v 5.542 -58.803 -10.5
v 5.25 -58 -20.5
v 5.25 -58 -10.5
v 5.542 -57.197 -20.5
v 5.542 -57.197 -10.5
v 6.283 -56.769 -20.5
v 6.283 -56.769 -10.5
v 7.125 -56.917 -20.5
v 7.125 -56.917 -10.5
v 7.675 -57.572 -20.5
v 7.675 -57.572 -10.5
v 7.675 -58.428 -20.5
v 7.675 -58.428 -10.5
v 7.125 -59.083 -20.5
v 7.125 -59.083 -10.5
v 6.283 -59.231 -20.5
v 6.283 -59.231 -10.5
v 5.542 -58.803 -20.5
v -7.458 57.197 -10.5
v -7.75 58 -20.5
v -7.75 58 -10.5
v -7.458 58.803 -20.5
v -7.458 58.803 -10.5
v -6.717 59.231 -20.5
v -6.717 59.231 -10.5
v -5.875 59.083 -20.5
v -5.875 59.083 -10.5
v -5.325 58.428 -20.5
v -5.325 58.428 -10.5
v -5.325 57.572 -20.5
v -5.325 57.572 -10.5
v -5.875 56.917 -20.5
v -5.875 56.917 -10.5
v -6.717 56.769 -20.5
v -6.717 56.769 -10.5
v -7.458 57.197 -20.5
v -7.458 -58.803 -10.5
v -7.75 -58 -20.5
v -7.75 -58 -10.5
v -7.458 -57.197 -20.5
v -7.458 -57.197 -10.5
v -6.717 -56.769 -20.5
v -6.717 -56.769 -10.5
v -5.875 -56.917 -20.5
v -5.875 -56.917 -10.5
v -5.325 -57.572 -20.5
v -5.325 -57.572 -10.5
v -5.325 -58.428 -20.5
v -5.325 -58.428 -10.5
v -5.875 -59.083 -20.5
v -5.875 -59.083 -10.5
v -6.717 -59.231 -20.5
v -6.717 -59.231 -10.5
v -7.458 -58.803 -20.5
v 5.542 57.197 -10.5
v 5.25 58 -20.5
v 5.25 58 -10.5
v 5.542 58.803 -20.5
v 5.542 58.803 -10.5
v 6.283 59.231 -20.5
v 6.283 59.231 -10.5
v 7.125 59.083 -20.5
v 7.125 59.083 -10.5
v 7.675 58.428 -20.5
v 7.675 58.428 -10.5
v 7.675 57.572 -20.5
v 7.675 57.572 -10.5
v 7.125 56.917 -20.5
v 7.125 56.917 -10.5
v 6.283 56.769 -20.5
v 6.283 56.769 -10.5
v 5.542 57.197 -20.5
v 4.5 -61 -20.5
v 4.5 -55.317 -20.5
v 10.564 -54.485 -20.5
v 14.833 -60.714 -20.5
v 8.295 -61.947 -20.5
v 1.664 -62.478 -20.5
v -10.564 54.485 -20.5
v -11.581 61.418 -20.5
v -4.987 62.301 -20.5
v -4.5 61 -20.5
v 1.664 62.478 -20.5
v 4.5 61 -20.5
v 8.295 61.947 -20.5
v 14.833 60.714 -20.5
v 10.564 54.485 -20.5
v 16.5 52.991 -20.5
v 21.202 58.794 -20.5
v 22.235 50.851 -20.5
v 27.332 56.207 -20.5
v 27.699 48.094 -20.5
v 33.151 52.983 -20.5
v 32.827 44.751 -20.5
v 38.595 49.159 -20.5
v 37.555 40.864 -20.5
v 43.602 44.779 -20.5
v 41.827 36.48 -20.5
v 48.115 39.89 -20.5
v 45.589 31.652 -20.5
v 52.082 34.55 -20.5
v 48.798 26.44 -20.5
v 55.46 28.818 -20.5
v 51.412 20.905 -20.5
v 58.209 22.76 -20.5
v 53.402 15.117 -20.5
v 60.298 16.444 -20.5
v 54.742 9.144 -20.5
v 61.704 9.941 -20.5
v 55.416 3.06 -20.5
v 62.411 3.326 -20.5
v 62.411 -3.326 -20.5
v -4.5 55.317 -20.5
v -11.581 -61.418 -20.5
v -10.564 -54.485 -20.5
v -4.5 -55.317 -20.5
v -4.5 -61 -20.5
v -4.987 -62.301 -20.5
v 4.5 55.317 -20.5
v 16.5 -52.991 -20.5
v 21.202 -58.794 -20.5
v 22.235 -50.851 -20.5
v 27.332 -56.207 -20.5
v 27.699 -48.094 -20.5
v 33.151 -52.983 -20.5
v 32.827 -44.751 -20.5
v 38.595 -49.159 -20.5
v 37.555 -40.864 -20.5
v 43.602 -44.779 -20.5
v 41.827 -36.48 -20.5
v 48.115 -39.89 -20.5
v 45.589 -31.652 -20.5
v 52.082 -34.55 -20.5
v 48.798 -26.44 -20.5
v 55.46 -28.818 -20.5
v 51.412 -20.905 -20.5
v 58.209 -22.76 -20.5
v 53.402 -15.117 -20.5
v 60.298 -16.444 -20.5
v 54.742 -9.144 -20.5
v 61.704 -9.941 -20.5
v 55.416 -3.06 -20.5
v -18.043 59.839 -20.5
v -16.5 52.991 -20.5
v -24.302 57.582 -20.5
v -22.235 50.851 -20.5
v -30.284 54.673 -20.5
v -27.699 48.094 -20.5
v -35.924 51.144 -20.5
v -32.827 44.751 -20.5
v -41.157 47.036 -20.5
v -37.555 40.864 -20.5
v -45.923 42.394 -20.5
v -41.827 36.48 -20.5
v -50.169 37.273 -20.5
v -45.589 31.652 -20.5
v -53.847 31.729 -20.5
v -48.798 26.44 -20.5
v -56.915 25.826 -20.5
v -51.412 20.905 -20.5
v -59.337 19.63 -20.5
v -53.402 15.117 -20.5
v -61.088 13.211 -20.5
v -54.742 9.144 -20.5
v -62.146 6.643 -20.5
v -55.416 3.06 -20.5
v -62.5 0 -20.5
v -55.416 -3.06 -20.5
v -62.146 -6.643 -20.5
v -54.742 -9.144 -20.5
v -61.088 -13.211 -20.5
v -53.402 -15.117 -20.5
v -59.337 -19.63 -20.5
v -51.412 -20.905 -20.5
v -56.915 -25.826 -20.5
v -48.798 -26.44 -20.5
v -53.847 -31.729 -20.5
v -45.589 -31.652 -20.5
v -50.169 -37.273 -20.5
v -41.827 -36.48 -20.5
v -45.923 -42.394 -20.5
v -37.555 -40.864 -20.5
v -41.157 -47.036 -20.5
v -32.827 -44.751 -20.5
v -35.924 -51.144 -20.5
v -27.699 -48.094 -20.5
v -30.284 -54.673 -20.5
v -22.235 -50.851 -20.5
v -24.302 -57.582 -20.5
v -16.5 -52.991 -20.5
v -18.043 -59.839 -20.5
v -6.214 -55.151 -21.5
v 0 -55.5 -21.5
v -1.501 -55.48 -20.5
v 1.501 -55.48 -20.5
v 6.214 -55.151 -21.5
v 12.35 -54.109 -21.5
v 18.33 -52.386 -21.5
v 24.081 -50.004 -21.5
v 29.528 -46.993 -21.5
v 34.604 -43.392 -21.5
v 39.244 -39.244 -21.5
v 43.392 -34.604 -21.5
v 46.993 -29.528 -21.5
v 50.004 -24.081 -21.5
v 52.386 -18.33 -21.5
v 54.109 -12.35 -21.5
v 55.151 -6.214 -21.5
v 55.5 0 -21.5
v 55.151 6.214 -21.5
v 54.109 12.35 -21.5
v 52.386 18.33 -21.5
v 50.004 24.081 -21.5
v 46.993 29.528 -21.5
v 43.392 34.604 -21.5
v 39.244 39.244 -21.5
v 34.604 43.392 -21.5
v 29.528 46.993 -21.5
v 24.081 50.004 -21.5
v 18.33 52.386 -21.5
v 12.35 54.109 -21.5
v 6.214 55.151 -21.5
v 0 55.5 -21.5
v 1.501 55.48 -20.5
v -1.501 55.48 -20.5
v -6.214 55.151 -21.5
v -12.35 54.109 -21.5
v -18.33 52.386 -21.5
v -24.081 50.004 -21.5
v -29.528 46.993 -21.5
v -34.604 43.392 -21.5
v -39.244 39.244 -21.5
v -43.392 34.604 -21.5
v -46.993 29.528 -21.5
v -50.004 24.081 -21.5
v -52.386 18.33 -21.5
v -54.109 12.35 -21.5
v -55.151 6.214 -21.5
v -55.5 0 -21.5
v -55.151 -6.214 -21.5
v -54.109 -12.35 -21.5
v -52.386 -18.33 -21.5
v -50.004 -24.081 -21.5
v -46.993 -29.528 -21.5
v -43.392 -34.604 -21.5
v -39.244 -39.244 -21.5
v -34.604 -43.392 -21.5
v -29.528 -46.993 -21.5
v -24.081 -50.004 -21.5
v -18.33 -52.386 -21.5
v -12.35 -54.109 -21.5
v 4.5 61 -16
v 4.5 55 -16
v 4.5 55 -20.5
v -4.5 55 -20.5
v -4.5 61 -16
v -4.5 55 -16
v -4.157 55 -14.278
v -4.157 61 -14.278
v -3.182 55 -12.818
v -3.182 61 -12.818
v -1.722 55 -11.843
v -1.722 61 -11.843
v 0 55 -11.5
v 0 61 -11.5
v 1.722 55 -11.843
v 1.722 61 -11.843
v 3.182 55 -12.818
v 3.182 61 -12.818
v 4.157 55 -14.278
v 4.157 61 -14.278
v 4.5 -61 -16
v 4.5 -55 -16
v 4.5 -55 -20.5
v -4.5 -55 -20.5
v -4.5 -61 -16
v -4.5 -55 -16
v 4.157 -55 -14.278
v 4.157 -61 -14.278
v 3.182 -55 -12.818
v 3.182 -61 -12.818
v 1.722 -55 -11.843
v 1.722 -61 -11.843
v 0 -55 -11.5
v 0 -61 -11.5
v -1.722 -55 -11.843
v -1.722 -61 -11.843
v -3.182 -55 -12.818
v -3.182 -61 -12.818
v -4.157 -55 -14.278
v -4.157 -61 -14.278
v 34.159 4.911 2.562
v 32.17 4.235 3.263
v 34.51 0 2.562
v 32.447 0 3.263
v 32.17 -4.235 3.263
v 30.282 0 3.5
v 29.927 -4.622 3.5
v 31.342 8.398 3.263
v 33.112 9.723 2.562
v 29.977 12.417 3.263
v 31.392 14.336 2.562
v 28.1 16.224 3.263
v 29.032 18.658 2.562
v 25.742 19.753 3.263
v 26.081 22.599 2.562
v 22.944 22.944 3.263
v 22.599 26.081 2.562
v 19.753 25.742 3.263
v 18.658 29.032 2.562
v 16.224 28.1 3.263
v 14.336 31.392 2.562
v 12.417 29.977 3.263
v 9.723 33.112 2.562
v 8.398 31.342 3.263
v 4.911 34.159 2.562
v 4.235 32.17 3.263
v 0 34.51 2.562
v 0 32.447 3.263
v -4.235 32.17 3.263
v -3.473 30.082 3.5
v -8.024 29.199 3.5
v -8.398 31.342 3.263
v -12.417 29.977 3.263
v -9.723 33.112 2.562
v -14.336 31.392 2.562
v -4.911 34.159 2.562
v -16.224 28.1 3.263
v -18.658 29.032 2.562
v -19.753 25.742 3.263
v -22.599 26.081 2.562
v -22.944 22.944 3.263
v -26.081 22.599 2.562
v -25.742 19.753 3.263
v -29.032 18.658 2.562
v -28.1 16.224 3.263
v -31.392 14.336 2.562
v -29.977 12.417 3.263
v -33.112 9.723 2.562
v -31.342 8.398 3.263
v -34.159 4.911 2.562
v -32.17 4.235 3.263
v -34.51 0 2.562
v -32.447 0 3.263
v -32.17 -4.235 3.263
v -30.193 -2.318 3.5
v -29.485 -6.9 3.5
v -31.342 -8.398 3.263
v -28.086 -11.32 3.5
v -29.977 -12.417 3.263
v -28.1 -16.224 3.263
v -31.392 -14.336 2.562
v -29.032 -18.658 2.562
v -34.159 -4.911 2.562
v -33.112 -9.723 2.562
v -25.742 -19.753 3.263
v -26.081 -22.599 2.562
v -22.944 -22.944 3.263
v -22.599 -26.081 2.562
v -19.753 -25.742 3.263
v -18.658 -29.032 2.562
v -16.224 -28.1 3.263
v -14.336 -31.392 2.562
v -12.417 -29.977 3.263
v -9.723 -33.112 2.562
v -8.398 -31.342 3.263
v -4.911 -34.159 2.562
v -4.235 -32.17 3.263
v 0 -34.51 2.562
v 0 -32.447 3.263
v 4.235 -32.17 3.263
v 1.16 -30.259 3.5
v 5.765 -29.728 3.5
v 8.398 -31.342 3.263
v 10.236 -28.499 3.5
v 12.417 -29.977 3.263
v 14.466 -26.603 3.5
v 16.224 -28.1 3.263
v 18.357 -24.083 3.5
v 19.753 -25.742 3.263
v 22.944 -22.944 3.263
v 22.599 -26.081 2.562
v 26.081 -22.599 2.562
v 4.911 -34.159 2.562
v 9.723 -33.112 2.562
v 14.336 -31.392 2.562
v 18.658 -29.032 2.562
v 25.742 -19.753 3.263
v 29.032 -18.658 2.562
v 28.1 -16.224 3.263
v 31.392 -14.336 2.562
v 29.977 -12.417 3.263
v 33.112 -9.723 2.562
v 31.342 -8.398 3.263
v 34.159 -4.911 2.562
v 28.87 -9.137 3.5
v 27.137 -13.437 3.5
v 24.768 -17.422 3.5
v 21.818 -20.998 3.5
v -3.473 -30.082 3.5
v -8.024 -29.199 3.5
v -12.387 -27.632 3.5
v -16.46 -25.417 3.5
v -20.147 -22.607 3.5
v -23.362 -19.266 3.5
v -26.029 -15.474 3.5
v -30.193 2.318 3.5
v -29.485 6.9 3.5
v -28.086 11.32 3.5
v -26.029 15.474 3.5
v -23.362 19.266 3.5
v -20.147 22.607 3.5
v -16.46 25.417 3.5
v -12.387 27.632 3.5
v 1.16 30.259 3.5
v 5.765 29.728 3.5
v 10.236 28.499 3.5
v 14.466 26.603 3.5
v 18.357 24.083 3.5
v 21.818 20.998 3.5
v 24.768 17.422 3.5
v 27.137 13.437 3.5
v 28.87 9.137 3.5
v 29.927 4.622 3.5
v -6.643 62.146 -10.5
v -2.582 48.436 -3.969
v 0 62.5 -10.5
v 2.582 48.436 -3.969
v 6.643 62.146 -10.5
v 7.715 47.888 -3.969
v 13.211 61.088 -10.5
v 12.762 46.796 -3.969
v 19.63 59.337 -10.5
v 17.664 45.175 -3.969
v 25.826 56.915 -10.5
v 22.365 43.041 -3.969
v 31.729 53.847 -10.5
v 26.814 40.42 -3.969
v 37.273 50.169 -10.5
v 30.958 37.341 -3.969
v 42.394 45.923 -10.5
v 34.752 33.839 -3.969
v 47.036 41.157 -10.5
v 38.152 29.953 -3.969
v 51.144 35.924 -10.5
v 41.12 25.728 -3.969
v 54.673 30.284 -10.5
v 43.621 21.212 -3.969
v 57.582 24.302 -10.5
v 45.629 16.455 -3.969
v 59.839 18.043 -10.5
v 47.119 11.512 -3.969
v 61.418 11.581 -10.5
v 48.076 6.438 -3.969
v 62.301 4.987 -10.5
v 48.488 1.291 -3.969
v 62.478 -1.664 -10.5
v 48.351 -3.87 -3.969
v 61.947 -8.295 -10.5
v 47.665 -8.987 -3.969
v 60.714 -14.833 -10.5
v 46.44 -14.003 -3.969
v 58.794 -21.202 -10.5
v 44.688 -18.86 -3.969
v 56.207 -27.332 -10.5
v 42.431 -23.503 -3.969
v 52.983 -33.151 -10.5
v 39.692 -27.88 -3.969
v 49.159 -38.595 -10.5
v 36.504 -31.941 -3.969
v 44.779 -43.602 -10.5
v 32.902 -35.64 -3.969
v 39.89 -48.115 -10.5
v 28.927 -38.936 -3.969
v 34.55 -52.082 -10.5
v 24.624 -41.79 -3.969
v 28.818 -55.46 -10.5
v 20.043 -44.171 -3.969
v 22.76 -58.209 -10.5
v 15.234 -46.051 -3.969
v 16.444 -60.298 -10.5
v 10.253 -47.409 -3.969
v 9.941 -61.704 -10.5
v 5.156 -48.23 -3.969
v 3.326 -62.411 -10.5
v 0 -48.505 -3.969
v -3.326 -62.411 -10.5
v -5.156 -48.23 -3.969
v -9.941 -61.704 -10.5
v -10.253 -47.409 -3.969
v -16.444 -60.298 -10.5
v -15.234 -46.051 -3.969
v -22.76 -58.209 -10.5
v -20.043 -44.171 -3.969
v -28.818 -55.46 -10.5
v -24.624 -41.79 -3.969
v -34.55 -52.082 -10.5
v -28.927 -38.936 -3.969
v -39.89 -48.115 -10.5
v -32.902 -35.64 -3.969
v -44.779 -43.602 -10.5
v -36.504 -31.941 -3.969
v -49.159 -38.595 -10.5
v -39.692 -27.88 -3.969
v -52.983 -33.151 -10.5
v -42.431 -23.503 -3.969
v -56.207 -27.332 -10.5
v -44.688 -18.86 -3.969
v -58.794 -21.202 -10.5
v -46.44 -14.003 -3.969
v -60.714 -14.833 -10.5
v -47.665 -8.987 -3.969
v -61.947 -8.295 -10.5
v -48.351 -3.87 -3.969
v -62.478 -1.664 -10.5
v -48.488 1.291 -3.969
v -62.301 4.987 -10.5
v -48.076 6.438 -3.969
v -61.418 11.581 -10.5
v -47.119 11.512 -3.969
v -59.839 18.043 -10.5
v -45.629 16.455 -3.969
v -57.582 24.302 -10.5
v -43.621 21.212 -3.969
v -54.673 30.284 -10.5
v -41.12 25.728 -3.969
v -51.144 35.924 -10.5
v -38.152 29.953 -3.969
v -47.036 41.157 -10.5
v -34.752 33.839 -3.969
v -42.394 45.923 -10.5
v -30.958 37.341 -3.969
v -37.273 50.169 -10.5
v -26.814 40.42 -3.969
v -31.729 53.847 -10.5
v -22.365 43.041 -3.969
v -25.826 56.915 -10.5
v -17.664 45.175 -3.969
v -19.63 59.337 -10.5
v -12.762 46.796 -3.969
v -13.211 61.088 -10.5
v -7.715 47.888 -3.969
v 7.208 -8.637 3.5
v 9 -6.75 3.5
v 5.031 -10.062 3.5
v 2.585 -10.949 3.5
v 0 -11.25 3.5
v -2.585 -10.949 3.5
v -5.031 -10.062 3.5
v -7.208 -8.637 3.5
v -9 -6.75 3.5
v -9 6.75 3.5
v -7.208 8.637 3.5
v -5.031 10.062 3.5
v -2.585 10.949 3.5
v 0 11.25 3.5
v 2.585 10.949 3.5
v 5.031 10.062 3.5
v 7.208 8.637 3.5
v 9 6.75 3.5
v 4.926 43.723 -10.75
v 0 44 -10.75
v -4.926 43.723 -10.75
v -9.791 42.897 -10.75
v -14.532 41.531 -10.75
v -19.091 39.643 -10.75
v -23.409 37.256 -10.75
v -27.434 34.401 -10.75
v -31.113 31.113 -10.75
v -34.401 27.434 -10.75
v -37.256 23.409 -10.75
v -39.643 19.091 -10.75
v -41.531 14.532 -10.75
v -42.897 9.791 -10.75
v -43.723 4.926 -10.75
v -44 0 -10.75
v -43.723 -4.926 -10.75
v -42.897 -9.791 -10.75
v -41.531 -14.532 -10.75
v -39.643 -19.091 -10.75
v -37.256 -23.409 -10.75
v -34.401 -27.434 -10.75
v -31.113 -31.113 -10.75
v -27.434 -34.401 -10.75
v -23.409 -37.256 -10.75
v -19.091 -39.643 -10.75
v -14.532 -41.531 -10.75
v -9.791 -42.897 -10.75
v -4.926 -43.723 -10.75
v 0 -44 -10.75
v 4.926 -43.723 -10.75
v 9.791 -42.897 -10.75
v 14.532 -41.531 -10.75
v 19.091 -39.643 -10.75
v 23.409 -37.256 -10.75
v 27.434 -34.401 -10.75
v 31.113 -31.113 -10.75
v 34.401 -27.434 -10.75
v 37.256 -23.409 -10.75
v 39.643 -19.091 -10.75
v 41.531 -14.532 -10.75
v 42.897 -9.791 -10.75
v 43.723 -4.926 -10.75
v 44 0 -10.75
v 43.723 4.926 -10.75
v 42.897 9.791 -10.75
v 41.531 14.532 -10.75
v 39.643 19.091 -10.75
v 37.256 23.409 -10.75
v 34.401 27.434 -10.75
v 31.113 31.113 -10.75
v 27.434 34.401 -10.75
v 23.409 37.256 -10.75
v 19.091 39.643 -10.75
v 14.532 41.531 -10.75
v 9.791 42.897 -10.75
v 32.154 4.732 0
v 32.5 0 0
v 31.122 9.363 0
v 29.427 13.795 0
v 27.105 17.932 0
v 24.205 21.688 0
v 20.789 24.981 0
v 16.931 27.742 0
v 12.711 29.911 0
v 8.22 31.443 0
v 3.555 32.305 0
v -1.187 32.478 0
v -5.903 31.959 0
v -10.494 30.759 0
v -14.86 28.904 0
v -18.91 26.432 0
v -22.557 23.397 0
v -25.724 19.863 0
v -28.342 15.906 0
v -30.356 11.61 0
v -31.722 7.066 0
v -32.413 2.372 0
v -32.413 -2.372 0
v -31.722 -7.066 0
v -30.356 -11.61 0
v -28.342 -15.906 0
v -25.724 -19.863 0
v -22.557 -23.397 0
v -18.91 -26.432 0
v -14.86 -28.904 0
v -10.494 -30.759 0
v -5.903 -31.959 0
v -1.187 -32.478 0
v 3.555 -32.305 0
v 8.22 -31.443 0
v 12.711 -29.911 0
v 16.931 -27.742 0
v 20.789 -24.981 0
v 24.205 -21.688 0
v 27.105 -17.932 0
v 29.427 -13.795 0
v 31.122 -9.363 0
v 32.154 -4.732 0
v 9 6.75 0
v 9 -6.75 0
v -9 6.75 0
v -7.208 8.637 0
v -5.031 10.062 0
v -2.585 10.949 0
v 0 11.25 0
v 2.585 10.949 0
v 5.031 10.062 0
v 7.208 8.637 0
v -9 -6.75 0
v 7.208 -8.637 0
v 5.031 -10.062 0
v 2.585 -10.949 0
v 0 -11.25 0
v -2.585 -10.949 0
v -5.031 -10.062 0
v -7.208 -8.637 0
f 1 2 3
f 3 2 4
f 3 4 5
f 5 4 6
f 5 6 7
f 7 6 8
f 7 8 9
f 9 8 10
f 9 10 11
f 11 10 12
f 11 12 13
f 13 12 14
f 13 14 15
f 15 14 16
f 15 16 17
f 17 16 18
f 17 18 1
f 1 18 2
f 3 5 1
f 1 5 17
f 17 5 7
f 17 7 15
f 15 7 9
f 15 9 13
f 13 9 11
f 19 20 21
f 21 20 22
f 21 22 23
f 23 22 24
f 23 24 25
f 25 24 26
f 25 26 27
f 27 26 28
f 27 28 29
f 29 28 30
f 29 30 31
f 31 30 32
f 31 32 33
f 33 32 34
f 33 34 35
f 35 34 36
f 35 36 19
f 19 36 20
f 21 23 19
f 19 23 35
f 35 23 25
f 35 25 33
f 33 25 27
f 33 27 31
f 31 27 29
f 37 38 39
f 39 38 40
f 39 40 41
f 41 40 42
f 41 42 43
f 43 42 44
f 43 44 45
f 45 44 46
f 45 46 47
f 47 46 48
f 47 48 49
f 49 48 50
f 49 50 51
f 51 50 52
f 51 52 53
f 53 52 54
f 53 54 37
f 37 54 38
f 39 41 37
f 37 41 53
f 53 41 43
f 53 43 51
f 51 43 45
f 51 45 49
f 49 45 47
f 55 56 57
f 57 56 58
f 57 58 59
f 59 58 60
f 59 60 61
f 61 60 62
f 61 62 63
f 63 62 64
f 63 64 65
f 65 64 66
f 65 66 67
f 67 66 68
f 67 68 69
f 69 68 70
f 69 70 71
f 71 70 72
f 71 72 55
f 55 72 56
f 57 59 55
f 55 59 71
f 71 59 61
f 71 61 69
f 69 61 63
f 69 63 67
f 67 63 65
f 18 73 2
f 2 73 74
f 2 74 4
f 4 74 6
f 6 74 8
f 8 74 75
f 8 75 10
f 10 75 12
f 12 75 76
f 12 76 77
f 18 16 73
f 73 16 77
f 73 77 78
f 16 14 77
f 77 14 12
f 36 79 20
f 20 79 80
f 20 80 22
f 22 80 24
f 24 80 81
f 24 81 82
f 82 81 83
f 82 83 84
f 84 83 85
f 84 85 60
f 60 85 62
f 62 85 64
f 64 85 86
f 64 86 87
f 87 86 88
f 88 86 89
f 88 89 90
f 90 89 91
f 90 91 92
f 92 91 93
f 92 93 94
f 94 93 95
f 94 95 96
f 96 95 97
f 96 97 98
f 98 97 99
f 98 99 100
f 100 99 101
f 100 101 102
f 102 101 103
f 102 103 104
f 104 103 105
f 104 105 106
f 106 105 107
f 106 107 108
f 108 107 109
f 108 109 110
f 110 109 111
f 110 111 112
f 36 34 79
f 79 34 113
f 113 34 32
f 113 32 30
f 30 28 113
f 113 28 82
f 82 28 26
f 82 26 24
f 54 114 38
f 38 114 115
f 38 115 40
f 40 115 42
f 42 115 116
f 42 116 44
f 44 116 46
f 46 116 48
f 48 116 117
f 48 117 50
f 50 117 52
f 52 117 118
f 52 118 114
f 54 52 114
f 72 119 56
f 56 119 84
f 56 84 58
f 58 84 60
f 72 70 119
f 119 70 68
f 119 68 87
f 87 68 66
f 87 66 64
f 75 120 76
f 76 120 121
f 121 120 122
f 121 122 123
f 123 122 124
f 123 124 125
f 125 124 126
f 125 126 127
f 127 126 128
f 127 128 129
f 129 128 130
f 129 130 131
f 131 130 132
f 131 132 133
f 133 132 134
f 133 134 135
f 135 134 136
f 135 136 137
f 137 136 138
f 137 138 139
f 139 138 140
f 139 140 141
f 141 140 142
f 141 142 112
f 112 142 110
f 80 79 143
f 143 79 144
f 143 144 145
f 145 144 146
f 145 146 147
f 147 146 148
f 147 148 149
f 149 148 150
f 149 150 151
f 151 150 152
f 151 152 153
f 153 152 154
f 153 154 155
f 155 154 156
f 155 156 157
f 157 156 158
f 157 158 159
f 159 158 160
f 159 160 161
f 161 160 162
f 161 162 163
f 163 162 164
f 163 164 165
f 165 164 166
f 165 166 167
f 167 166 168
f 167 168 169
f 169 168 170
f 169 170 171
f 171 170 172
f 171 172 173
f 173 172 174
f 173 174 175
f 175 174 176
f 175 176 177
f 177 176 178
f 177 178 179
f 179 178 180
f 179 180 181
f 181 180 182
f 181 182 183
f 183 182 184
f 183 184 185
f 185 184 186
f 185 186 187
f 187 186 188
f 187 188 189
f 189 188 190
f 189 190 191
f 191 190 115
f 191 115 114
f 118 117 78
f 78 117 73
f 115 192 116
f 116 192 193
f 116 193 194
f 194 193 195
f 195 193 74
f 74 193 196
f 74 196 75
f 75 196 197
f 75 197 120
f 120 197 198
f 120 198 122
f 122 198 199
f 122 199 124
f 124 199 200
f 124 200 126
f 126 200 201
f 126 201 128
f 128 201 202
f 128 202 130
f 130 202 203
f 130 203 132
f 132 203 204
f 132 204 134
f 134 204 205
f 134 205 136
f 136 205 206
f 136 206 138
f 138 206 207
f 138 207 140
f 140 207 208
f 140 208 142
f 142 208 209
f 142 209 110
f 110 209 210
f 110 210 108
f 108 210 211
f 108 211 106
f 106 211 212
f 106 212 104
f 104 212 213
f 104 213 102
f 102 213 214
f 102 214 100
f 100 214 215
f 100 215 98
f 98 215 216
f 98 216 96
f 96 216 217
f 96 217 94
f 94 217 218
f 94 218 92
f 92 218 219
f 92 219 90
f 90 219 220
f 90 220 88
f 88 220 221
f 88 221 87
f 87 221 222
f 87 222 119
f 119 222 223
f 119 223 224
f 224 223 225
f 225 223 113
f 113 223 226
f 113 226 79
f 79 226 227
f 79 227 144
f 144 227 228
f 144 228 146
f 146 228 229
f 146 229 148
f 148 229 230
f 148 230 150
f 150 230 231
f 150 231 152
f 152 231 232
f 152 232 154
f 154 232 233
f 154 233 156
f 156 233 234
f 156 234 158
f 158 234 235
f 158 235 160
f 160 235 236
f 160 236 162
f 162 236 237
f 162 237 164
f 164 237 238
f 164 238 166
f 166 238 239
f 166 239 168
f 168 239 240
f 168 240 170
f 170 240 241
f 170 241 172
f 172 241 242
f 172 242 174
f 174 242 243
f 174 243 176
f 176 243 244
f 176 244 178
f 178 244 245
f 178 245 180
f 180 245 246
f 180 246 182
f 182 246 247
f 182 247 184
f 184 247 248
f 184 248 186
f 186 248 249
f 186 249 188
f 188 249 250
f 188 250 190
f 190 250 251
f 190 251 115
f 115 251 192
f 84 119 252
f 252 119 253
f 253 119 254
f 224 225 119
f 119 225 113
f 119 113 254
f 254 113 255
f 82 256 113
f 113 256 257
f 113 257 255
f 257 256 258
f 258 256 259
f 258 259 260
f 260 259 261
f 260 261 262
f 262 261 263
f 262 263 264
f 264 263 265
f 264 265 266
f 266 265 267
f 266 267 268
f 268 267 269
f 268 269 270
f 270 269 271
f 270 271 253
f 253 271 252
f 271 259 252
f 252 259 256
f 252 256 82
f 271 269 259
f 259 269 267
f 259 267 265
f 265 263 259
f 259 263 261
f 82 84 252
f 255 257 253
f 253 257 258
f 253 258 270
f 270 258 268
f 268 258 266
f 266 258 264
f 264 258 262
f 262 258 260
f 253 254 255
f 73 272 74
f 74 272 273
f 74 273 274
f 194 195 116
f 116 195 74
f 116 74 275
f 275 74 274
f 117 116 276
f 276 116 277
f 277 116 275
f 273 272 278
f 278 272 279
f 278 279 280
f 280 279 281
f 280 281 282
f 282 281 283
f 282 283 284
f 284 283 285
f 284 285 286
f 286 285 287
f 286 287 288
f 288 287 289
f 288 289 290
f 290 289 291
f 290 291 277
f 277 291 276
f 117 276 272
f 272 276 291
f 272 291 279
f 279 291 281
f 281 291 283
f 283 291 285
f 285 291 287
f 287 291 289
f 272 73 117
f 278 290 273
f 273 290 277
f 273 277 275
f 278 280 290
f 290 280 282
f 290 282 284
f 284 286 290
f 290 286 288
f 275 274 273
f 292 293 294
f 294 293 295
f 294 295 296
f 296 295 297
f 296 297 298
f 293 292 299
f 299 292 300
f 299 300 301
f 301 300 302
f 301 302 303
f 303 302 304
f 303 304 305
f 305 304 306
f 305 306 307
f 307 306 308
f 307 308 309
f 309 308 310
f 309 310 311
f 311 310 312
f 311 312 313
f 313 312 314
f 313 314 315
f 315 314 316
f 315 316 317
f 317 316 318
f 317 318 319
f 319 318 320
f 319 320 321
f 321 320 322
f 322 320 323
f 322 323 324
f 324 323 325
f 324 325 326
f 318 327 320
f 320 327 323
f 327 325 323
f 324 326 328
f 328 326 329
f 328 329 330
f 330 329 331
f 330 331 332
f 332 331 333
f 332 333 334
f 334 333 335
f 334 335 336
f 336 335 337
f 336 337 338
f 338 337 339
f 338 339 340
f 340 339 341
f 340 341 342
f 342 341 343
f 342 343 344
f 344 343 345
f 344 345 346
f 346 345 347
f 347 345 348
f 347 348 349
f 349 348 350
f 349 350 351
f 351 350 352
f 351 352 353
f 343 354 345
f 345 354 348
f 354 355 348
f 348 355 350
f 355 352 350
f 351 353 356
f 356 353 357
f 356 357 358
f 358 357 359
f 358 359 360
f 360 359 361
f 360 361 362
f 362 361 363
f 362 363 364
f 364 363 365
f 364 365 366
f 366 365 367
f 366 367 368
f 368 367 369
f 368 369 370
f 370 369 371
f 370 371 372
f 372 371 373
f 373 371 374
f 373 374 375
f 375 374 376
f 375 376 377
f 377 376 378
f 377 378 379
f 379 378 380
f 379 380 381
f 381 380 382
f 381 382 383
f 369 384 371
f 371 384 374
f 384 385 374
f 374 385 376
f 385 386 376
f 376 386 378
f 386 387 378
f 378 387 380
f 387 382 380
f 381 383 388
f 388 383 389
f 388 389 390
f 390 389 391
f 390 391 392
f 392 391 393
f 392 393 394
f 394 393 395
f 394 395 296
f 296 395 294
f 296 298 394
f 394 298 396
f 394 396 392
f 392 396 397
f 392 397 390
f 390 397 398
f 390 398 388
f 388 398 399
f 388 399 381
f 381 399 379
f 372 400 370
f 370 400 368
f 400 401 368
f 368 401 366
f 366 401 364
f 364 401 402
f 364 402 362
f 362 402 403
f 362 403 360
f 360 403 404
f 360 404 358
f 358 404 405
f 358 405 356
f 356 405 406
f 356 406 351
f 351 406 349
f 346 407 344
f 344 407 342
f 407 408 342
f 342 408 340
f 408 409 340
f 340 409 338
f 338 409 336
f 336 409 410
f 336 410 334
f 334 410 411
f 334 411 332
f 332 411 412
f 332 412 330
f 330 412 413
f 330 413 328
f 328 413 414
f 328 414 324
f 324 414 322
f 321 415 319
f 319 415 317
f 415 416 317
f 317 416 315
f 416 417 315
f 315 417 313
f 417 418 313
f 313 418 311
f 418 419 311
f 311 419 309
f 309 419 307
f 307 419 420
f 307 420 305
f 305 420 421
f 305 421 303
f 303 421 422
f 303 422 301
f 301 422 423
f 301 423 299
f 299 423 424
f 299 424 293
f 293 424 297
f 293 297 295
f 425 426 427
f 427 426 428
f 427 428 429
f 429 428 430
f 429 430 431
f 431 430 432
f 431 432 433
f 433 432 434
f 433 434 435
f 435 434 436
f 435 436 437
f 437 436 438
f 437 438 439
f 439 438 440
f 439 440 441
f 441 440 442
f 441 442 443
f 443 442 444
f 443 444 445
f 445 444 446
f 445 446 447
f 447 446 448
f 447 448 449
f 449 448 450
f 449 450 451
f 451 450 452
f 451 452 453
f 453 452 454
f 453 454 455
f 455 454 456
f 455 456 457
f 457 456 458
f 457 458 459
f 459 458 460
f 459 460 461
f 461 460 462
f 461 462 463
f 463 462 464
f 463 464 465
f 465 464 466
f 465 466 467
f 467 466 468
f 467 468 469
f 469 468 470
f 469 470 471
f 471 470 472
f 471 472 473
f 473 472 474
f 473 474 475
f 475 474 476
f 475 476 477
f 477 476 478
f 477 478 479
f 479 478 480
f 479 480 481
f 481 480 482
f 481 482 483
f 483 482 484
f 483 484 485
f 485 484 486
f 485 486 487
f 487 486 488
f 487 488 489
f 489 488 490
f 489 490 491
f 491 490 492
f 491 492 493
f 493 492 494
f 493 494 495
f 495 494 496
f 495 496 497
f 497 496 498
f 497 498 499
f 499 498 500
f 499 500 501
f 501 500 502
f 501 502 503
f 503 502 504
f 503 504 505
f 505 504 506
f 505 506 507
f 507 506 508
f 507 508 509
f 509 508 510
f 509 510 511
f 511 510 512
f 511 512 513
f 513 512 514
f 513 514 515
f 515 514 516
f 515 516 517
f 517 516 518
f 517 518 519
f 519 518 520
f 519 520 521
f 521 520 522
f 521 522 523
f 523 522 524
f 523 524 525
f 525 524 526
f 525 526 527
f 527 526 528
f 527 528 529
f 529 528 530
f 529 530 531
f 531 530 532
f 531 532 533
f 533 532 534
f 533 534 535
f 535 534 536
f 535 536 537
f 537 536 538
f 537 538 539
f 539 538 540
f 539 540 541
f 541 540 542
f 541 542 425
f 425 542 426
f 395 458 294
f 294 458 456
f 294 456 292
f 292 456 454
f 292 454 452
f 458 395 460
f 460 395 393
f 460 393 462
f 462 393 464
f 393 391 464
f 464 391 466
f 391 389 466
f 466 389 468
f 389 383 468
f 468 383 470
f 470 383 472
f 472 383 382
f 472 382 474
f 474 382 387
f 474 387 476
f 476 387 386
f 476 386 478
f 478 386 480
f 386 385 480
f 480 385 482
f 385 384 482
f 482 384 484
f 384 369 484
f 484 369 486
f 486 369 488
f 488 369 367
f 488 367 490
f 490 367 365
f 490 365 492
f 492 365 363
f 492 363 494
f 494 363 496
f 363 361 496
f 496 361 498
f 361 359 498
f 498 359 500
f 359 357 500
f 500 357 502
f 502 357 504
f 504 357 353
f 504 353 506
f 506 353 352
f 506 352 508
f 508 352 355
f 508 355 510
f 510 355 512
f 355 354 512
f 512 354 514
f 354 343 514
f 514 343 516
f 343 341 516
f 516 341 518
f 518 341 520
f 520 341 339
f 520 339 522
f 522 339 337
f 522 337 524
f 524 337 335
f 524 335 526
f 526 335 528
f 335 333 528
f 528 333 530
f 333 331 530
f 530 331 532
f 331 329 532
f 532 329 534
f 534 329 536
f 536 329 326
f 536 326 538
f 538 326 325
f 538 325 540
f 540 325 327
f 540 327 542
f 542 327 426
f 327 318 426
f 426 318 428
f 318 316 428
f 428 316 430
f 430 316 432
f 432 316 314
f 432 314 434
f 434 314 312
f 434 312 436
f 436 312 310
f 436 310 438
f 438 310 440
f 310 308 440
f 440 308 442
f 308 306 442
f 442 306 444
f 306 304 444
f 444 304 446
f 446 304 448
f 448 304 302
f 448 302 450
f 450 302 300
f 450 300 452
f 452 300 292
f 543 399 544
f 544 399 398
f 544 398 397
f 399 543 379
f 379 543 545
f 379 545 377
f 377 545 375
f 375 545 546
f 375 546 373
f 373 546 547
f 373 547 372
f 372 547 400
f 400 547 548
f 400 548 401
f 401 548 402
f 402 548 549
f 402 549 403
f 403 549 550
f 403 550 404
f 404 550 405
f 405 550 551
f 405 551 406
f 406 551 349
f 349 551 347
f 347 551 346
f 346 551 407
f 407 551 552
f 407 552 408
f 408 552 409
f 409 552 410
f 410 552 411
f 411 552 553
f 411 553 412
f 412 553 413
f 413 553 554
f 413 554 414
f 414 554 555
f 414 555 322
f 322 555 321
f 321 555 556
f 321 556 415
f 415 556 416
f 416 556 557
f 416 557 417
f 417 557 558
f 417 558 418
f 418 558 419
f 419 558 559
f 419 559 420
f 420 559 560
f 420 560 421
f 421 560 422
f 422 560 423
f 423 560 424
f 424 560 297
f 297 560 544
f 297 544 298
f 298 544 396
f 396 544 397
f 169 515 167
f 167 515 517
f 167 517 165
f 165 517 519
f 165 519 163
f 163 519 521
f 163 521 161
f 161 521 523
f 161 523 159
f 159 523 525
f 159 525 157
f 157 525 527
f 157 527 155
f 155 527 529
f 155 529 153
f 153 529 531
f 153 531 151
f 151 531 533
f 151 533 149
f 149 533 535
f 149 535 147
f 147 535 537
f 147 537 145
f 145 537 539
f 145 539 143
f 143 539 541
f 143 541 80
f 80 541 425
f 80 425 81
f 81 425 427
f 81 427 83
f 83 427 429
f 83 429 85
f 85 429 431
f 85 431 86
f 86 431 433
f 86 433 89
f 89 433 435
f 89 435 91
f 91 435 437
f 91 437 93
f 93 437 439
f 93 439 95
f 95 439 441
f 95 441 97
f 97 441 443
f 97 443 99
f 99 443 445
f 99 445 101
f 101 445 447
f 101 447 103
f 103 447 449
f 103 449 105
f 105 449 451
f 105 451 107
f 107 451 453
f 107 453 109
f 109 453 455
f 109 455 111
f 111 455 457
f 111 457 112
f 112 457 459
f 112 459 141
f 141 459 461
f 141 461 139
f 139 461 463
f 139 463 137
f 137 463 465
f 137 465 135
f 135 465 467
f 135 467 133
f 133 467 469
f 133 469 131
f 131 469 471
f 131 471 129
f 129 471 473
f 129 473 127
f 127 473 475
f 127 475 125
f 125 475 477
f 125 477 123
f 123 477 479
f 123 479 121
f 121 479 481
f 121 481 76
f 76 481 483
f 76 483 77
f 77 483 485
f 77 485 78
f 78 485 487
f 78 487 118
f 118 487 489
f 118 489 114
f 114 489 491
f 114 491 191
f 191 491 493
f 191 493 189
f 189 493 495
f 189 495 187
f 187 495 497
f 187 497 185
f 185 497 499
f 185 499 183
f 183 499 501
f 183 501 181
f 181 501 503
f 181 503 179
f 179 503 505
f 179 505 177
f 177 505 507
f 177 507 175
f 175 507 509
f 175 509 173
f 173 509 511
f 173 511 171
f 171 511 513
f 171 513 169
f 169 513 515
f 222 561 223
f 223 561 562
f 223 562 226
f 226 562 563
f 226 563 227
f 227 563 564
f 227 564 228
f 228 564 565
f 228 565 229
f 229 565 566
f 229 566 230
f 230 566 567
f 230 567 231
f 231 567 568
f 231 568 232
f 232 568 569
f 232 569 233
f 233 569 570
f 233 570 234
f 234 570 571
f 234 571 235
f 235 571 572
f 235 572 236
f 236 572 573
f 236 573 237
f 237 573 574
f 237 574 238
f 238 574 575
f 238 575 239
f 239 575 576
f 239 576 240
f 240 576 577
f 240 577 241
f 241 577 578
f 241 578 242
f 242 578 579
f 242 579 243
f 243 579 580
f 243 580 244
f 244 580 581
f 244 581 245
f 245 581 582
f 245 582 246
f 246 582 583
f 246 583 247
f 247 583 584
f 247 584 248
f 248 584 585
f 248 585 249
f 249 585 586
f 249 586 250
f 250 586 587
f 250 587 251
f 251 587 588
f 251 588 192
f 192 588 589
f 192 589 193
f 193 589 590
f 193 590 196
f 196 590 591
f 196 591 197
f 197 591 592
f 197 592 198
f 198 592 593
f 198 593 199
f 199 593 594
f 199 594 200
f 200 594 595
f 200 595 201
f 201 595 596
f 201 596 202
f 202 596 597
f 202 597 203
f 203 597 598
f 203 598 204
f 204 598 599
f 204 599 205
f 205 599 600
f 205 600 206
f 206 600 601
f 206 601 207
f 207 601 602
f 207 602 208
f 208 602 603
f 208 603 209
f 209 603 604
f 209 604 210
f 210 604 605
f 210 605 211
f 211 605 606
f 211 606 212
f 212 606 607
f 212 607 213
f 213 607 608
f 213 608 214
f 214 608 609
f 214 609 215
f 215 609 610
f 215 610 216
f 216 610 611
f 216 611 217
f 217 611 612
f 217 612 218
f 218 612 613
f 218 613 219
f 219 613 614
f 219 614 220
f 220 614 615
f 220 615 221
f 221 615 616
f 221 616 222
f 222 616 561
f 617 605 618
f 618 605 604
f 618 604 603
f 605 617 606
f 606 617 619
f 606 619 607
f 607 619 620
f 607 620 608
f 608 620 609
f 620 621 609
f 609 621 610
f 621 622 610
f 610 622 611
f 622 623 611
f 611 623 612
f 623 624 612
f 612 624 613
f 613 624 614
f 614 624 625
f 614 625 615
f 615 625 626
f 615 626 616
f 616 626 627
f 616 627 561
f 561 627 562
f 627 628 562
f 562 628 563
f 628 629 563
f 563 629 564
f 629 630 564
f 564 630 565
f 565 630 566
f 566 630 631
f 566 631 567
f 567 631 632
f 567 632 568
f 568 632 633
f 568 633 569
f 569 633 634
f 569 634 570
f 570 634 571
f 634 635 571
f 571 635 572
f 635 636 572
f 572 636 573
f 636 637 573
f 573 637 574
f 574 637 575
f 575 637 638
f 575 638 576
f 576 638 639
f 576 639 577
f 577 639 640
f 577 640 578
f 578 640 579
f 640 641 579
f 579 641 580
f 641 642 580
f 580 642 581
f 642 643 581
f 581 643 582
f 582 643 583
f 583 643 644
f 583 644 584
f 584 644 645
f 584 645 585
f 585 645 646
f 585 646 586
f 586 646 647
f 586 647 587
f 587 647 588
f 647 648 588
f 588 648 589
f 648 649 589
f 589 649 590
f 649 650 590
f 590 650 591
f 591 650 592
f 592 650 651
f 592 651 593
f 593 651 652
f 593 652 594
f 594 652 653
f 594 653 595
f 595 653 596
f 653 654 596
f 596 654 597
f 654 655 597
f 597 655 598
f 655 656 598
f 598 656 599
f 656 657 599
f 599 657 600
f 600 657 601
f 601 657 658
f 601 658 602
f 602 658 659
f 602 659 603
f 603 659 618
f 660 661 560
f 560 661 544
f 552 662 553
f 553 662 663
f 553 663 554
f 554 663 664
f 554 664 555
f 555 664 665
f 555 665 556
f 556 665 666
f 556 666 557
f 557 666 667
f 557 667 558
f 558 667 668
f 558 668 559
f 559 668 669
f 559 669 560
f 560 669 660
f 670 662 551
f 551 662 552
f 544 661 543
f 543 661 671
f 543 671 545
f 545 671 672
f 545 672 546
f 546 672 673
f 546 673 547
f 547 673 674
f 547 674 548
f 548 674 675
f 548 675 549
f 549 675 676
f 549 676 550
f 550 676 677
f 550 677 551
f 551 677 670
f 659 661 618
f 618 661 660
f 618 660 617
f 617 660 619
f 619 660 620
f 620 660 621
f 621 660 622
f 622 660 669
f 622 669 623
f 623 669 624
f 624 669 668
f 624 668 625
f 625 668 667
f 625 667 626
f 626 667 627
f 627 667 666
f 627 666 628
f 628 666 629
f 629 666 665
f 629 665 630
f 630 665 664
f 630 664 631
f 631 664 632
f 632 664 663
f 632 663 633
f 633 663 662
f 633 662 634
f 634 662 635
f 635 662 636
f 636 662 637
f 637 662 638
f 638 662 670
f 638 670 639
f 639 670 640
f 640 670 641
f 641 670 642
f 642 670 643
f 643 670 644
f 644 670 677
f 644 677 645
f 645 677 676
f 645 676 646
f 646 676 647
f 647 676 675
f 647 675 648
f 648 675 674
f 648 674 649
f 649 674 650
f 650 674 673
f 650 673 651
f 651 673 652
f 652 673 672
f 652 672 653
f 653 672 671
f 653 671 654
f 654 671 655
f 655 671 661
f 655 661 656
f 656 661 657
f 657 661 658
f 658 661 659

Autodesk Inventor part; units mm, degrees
ref_plane "YZ Plane" through (0, 0, 0) normal (1, 0, 0) x (0, 1, 0)
ref_plane "XY Plane" through (0, 0, 0) normal (0, 0, 1) x (1, 0, 0)
sketch "Sketch1" plane through (0, 0, 0) normal (0, 0, 1) x (1, 0, 0)
  circle A0 centre (0, 0) radius 11.25
  line L0 (-9, 6.75) -> (-9, -6.75)
  line L1 (9, 6.75) -> (9, -6.75)
  circle A1 centre (0, 0) radius 32.5
  dimension "d0" = 22.5
  dimension "d1" = 18
  dimension "d2" = 65
extrude "Extrusion1" add sketch "Sketch1" along normal blind 3.5 contours A0 L1 | L0 A0 | A1
sketch "Sketch2" plane through (0, 0, 0) normal (1, 0, 0) x (0, 1, 0)
  line L0 (32.5, 0) -> (-32.5, 0) projected
  line L1 (32.5, 0) -> (55.5, -21.5)
  line L2 (55.5, -21.5) -> (62.5, -21.5)
  line L3 (62.5, -21.5) -> (62.5, -10.5)
  line L4 (32.5, 3.5) -> (-32.5, 3.5) projected
  line L5 (32.5, 3.5) -> (62.5, -10.5)
  line L6 (0, 0) -> (0, -19.375) construction
  line L7 (32.5, 3.5) -> (32.5, 0)
  dimension "d8" = 7
  dimension "d9" = 25
  dimension "d10" = 11
  dimension "d11" = 30
revolve "Revolution1" add sketch "Sketch2" angle 360 about axis through (0, 0, 0) along (0, 0, -1)
fillet "Fillet1" radius 10 1 edges at (0, -32.5, 3.5)
ref_plane "Work Plane2" through (0, 61, 0) normal (0, 1, 0) x (-1, 0, 0)
sketch "Sketch3" plane through (0, 61, 0) normal (0, 1, 0) x (-1, 0, 0)
  circle A0 centre (0, -16) radius 4.5
  line L0 (4.5, -16) -> (4.5, -20.5)
  line L1 (-4.5, -20.5) -> (-4.5, -16)
  line L2 (-62.5, -21.5) -> (62.5, -21.5) projected
  line L3 (62.5, -21.5) -> (62.5, -11.7) construction
  line L4 (62.5, -10.5) -> (62.5, -21.5) projected
  line L5 (-9, 0) -> (9, 0) projected
  line L6 (-4.5, -20.5) -> (4.5, -20.5)
  point P0 (0, 0)
  point P1 (0, 0)
  point P2 (0, -20.5)
  dimension "d14" = 9
  dimension "d22" = 1
extrude "Extrusion2" cut sketch "Sketch3" against normal blind 6
sketch "Sketch4" plane through (0, 0, 3.5) normal (0, 0, 1) x (1, 0, 0)
  circle A0 centre (0, 45) radius 9
  point P0 (0, 0)
  dimension "d25" = 45
  dimension "d26" = 18
extrude "Extrusion3" [suppressed]
pattern_circular "Circular Pattern1" [suppressed]
mirror "Mirror1" about plane through (0, 0, 0) normal (0, 1, 0) of "Extrusion2"
sketch "Sketch5" plane through (0, 0, -21.5) normal (0, 0, -1) x (-1, 0, 0)
  circle A0 centre (0, 0) radius 62.5 projected
  circle A1 centre (0, 0) radius 55.5 projected
extrude "Extrusion4" cut sketch "Sketch5" against normal blind 1
sketch "Sketch6" plane through (0, 0, -20.5) normal (0, 0, -1) x (-1, 0, 0)
  line L0 (-4.5, 61) -> (-4.5, 55) projected
  line L1 (-4.5, 58) -> (-6.5, 58)
  circle A0 centre (-6.5, 58) radius 1.25
  line L2 (0, 60.0655) -> (0, 54.4578) construction
  circle A1 centre (6.5, 58) radius 1.25
  circle A2 centre (0, 0) radius 55.5 construction
  line L3 (-55.5, 0) -> (55.5, 0) construction
  circle A3 centre (-6.5, -58) radius 1.25
  circle A4 centre (6.5, -58) radius 1.25
  dimension "d32" = 2
  dimension "d33" = 2.5
extrude "Extrusion5" cut sketch "Sketch6" against normal blind 10
properties part number "CVT_Ring"
